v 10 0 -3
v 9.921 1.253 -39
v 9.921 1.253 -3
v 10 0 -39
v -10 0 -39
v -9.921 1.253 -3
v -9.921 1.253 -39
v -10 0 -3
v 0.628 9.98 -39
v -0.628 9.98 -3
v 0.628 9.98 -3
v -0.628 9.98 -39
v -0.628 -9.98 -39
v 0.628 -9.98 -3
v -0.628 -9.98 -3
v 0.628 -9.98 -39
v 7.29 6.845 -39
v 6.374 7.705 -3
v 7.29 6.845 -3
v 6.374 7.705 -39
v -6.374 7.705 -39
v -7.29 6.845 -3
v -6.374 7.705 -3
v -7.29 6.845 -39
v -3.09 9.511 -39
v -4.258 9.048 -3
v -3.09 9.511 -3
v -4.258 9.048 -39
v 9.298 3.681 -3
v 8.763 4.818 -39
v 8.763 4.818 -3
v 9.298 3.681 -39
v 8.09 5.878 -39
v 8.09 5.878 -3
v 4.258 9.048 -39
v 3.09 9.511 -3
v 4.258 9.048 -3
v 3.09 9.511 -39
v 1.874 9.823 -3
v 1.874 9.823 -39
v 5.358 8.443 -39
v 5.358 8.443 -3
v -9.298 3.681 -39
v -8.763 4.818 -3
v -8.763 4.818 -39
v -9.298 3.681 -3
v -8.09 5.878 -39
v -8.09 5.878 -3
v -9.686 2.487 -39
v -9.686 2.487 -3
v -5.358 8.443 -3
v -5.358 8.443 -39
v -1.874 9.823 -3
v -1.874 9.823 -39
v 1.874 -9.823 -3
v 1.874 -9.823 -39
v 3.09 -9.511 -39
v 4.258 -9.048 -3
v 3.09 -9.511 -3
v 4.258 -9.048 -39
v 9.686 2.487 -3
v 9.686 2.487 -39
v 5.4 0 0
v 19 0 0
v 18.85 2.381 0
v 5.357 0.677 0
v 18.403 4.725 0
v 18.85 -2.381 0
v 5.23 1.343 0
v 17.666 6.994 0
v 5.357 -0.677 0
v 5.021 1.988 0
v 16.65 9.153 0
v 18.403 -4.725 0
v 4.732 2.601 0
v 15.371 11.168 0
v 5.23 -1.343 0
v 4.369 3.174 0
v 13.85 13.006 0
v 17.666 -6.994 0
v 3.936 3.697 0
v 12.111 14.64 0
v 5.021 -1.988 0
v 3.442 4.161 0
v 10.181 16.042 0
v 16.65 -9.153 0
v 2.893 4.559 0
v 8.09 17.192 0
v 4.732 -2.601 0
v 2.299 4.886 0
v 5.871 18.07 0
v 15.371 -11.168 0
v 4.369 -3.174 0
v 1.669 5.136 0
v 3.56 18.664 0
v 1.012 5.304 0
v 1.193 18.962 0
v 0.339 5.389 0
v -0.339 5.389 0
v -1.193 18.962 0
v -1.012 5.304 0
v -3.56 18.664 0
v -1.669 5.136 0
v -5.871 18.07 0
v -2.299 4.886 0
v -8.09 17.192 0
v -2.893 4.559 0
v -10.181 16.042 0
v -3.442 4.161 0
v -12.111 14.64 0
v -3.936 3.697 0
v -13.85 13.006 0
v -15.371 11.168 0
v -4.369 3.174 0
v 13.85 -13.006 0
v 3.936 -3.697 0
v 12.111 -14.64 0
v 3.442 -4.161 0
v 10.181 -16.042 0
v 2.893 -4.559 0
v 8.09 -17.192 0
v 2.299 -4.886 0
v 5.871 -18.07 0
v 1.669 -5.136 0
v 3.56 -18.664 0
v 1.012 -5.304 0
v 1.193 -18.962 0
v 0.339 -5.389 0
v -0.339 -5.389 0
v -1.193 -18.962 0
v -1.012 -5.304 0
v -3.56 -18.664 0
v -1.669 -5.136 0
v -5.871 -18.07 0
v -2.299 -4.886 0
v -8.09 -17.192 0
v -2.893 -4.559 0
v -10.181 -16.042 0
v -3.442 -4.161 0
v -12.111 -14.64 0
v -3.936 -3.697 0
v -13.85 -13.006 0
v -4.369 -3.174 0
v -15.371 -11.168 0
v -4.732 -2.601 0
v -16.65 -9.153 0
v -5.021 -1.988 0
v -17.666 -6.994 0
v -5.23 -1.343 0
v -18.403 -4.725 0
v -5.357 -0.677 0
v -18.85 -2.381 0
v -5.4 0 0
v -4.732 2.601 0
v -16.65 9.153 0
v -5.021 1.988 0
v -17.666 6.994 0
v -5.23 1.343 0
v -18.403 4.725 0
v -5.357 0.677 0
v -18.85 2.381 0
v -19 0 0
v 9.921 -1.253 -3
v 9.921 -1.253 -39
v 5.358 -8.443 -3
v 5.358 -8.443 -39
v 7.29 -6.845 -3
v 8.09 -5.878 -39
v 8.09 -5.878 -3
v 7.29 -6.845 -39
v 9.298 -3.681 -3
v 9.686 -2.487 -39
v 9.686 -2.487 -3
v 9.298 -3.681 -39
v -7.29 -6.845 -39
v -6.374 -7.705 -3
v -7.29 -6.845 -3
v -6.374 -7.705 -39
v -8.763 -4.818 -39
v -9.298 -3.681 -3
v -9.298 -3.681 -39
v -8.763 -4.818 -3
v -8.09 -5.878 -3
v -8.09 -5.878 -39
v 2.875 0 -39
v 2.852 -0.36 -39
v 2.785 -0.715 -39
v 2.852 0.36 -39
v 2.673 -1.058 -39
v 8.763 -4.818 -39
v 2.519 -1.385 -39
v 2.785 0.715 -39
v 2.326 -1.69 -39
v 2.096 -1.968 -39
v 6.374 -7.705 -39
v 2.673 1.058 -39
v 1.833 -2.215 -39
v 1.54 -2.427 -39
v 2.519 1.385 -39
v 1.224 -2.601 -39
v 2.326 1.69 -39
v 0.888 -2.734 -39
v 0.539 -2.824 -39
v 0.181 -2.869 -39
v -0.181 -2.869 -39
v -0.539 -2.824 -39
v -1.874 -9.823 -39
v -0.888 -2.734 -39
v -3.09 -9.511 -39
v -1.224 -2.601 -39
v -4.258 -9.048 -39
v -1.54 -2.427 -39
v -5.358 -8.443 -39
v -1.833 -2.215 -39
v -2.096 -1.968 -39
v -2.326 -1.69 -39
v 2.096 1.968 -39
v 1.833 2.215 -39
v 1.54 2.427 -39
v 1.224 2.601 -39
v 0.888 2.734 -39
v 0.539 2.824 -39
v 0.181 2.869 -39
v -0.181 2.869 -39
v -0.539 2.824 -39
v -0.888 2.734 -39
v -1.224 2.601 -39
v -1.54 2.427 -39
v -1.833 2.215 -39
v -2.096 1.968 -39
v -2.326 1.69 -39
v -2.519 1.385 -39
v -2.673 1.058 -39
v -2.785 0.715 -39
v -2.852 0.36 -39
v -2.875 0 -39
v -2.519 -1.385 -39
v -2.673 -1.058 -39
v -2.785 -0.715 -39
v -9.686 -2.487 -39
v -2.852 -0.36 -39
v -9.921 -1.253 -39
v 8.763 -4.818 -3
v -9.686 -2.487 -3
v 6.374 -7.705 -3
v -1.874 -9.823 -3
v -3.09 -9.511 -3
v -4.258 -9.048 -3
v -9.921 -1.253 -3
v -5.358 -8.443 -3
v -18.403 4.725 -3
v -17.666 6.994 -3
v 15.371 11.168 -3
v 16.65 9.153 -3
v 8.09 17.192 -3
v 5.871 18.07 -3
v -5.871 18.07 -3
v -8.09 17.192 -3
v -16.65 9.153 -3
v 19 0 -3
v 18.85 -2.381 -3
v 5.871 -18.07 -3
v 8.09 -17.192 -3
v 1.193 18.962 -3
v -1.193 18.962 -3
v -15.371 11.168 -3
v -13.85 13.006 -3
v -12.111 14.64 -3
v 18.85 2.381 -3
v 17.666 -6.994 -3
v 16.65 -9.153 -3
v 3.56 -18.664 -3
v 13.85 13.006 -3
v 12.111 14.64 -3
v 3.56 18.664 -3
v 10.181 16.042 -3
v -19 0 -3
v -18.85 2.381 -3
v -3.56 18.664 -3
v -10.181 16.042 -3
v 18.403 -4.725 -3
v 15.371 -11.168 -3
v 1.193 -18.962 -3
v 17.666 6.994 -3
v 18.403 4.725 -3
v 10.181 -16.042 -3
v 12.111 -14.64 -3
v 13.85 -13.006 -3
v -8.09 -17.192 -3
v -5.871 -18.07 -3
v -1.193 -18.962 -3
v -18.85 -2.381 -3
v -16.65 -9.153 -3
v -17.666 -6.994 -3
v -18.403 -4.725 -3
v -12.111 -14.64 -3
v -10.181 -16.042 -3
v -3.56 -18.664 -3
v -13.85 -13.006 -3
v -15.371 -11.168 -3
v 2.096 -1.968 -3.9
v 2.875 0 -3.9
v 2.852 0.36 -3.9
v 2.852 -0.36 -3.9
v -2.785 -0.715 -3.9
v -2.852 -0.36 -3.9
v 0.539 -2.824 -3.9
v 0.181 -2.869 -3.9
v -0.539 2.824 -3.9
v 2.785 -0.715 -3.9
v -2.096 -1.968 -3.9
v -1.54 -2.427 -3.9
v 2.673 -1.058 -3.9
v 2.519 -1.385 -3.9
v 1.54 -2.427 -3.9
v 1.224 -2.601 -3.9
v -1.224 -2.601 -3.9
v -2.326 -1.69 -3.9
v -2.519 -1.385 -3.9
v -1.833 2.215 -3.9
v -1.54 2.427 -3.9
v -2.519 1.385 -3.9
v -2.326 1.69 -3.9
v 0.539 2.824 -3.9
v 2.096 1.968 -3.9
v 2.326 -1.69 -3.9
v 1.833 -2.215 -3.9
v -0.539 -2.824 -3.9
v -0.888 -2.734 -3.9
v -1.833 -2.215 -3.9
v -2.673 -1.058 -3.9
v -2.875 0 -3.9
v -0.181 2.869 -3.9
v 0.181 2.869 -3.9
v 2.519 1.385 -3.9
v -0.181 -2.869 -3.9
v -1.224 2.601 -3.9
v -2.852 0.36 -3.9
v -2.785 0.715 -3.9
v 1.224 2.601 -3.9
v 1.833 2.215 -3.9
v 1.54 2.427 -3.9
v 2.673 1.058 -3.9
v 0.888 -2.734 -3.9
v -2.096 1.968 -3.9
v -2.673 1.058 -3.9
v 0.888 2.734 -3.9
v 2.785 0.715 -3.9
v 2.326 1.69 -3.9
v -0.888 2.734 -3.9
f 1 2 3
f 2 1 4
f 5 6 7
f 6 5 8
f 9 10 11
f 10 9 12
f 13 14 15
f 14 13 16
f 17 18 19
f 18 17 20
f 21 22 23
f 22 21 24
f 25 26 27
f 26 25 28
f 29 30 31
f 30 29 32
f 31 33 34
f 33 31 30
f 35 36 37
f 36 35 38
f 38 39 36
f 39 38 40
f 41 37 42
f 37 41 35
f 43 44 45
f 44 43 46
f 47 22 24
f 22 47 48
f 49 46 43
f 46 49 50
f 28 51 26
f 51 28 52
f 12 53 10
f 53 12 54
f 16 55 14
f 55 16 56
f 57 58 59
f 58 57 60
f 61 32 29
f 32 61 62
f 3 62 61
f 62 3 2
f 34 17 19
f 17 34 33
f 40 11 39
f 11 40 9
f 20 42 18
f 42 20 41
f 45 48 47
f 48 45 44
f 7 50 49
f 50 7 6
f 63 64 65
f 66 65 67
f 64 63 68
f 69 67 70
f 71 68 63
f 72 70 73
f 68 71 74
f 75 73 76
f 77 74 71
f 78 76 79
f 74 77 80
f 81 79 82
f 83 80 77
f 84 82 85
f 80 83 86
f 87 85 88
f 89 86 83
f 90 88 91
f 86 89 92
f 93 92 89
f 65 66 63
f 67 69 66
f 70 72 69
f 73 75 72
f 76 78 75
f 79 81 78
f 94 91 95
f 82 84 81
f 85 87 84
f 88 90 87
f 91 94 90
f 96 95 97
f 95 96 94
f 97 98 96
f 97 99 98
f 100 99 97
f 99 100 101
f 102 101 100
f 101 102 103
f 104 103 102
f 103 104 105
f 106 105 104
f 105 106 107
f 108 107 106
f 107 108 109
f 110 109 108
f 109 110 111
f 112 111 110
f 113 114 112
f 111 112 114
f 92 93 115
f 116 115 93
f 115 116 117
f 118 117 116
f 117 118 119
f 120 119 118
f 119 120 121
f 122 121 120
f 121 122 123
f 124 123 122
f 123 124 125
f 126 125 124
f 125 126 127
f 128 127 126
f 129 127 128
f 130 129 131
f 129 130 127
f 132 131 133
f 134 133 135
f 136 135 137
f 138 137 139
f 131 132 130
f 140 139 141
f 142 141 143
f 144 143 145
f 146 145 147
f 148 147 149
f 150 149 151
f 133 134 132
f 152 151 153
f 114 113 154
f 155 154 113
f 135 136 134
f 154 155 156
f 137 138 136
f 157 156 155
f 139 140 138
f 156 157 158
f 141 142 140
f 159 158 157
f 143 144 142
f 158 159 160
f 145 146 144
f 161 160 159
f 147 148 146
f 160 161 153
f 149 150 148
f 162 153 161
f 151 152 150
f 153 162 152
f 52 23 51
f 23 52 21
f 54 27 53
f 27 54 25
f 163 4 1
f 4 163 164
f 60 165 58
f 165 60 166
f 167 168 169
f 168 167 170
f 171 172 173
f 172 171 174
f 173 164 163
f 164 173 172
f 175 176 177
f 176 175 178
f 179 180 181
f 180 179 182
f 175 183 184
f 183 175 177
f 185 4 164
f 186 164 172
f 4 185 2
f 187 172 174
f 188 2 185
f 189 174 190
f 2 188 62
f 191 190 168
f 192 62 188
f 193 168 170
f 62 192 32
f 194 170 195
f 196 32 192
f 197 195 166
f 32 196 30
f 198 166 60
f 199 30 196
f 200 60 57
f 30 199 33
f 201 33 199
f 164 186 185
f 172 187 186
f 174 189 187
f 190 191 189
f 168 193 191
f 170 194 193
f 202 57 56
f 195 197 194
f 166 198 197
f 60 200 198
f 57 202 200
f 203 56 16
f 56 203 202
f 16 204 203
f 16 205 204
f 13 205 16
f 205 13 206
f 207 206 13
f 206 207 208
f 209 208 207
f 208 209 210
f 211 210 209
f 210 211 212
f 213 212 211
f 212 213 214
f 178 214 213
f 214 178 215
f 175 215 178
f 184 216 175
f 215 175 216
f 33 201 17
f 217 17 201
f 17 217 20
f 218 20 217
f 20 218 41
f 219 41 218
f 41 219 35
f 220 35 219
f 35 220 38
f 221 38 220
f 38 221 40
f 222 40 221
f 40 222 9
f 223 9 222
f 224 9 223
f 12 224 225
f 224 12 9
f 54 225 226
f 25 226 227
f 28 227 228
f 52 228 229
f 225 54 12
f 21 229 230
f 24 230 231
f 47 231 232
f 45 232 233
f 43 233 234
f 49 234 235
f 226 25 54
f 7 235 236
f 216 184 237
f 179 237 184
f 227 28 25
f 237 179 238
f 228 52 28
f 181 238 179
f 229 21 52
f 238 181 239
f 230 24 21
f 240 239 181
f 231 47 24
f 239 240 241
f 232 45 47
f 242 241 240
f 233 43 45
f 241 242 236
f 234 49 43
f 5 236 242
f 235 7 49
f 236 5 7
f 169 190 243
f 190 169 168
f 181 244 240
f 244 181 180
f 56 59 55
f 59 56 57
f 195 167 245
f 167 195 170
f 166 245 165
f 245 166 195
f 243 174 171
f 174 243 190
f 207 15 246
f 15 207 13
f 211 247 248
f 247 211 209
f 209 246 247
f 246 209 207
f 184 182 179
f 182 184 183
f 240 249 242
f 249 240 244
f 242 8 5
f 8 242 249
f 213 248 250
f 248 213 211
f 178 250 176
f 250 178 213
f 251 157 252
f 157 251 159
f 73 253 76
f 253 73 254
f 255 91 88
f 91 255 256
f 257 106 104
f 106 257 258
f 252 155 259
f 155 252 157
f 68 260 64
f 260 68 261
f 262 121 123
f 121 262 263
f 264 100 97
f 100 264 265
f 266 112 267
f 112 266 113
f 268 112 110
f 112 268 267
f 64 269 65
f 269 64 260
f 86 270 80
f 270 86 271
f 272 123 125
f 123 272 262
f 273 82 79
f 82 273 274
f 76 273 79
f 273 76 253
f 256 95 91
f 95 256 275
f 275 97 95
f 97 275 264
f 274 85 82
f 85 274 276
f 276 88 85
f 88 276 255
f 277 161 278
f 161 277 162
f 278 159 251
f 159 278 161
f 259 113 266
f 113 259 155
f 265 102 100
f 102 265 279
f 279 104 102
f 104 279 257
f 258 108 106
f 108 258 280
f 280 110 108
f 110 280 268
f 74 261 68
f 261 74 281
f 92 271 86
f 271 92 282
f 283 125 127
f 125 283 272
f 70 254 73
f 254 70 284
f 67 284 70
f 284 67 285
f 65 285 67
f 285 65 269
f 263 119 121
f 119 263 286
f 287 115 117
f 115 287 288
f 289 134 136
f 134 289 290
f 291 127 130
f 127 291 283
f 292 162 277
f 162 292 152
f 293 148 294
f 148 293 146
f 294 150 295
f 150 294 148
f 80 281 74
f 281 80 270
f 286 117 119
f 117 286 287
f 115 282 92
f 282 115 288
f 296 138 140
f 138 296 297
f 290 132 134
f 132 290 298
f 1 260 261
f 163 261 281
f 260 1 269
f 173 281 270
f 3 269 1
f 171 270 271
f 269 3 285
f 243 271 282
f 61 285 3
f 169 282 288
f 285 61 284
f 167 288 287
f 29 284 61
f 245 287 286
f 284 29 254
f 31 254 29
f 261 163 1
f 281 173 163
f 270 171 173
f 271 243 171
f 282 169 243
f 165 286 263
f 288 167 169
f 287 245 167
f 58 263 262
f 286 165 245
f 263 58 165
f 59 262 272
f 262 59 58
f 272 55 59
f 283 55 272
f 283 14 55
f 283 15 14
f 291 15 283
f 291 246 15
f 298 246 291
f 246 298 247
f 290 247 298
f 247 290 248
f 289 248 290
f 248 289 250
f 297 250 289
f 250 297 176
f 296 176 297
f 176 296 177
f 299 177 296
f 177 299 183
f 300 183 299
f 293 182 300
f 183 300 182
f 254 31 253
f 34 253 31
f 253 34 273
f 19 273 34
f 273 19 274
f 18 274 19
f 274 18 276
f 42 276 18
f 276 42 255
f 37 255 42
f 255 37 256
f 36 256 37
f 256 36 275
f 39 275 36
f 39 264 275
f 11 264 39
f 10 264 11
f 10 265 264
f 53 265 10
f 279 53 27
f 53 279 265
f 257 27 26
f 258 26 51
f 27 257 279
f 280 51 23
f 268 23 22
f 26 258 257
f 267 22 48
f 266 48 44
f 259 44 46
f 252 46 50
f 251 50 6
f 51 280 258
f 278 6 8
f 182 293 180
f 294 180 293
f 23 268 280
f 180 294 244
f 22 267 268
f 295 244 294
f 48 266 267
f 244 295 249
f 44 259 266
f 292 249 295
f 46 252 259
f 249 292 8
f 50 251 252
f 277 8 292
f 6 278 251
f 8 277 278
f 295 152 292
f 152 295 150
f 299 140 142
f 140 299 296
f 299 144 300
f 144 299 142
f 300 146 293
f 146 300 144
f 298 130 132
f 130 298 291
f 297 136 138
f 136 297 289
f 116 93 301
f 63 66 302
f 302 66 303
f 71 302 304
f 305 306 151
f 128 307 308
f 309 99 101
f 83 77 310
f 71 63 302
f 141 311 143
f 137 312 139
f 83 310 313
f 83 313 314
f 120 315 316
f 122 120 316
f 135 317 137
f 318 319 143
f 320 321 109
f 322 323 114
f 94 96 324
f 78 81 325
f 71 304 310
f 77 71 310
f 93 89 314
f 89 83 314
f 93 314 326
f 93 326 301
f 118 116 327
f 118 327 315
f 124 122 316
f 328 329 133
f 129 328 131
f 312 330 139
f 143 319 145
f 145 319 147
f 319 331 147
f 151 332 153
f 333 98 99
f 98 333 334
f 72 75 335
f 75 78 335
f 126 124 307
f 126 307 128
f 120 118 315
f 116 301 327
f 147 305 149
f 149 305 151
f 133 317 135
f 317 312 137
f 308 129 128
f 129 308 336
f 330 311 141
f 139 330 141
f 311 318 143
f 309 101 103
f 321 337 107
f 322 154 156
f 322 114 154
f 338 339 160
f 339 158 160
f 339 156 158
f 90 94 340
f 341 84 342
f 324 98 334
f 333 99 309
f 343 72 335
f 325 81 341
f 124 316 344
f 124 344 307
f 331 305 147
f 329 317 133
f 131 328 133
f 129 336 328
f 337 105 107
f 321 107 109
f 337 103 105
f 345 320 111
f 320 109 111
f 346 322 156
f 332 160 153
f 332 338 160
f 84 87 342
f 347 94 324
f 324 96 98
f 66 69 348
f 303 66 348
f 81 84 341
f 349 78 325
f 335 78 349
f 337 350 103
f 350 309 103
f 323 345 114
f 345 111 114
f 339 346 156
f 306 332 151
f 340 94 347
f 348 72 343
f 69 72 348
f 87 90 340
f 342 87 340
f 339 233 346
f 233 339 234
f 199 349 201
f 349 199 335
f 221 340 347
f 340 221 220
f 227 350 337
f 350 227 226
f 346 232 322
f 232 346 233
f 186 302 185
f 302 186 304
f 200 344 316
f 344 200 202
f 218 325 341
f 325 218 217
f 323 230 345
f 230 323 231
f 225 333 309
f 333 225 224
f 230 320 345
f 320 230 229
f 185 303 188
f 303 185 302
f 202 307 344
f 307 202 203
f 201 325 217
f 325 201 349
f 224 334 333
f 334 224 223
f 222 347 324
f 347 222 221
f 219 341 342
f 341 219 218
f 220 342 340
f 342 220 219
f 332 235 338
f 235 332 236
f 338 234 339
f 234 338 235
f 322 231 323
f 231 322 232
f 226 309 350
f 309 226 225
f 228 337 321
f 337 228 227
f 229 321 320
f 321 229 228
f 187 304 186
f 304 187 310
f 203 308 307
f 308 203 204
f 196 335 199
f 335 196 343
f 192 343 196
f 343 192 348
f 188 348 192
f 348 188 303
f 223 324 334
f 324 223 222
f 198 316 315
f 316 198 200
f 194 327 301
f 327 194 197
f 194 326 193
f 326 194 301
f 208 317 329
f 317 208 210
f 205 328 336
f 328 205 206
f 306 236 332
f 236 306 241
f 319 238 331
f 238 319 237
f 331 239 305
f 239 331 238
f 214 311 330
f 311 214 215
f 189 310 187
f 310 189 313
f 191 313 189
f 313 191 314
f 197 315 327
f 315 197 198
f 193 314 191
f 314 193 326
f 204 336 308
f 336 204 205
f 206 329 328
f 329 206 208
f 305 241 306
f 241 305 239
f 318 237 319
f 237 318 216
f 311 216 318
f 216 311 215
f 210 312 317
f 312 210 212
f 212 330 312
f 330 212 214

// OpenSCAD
$fn = 50;


difference() {
	union() {
		translate(v = [0, 0, -39.0000000000]) {
			cylinder(h = 39, r = 10.0000000000);
		}
		translate(v = [0, 0, -3.0000000000]) {
			cylinder(h = 3, r = 19.0000000000);
		}
	}
	union() {
		translate(v = [0, 0, 0]) {
			rotate(a = [0, 0, 0]) {
				difference() {
					union() {
						#translate(v = [0, 0, -39.0000000000]) {
							cylinder(h = 39, r = 2.6000000000);
						}
						#translate(v = [0, 0, -3.9000000000]) {
							cylinder(h = 3.9000000000, r = 10.0000000000, r1 = 2.8750000000, r2 = 5.4000000000);
						}
						#translate(v = [0, 0, -39.0000000000]) {
							cylinder(h = 39, r = 2.8750000000);
						}
						#translate(v = [0, 0, -39.0000000000]) {
							cylinder(h = 39, r = 2.6000000000);
						}
					}
					union();
				}
			}
		}
	}
}
